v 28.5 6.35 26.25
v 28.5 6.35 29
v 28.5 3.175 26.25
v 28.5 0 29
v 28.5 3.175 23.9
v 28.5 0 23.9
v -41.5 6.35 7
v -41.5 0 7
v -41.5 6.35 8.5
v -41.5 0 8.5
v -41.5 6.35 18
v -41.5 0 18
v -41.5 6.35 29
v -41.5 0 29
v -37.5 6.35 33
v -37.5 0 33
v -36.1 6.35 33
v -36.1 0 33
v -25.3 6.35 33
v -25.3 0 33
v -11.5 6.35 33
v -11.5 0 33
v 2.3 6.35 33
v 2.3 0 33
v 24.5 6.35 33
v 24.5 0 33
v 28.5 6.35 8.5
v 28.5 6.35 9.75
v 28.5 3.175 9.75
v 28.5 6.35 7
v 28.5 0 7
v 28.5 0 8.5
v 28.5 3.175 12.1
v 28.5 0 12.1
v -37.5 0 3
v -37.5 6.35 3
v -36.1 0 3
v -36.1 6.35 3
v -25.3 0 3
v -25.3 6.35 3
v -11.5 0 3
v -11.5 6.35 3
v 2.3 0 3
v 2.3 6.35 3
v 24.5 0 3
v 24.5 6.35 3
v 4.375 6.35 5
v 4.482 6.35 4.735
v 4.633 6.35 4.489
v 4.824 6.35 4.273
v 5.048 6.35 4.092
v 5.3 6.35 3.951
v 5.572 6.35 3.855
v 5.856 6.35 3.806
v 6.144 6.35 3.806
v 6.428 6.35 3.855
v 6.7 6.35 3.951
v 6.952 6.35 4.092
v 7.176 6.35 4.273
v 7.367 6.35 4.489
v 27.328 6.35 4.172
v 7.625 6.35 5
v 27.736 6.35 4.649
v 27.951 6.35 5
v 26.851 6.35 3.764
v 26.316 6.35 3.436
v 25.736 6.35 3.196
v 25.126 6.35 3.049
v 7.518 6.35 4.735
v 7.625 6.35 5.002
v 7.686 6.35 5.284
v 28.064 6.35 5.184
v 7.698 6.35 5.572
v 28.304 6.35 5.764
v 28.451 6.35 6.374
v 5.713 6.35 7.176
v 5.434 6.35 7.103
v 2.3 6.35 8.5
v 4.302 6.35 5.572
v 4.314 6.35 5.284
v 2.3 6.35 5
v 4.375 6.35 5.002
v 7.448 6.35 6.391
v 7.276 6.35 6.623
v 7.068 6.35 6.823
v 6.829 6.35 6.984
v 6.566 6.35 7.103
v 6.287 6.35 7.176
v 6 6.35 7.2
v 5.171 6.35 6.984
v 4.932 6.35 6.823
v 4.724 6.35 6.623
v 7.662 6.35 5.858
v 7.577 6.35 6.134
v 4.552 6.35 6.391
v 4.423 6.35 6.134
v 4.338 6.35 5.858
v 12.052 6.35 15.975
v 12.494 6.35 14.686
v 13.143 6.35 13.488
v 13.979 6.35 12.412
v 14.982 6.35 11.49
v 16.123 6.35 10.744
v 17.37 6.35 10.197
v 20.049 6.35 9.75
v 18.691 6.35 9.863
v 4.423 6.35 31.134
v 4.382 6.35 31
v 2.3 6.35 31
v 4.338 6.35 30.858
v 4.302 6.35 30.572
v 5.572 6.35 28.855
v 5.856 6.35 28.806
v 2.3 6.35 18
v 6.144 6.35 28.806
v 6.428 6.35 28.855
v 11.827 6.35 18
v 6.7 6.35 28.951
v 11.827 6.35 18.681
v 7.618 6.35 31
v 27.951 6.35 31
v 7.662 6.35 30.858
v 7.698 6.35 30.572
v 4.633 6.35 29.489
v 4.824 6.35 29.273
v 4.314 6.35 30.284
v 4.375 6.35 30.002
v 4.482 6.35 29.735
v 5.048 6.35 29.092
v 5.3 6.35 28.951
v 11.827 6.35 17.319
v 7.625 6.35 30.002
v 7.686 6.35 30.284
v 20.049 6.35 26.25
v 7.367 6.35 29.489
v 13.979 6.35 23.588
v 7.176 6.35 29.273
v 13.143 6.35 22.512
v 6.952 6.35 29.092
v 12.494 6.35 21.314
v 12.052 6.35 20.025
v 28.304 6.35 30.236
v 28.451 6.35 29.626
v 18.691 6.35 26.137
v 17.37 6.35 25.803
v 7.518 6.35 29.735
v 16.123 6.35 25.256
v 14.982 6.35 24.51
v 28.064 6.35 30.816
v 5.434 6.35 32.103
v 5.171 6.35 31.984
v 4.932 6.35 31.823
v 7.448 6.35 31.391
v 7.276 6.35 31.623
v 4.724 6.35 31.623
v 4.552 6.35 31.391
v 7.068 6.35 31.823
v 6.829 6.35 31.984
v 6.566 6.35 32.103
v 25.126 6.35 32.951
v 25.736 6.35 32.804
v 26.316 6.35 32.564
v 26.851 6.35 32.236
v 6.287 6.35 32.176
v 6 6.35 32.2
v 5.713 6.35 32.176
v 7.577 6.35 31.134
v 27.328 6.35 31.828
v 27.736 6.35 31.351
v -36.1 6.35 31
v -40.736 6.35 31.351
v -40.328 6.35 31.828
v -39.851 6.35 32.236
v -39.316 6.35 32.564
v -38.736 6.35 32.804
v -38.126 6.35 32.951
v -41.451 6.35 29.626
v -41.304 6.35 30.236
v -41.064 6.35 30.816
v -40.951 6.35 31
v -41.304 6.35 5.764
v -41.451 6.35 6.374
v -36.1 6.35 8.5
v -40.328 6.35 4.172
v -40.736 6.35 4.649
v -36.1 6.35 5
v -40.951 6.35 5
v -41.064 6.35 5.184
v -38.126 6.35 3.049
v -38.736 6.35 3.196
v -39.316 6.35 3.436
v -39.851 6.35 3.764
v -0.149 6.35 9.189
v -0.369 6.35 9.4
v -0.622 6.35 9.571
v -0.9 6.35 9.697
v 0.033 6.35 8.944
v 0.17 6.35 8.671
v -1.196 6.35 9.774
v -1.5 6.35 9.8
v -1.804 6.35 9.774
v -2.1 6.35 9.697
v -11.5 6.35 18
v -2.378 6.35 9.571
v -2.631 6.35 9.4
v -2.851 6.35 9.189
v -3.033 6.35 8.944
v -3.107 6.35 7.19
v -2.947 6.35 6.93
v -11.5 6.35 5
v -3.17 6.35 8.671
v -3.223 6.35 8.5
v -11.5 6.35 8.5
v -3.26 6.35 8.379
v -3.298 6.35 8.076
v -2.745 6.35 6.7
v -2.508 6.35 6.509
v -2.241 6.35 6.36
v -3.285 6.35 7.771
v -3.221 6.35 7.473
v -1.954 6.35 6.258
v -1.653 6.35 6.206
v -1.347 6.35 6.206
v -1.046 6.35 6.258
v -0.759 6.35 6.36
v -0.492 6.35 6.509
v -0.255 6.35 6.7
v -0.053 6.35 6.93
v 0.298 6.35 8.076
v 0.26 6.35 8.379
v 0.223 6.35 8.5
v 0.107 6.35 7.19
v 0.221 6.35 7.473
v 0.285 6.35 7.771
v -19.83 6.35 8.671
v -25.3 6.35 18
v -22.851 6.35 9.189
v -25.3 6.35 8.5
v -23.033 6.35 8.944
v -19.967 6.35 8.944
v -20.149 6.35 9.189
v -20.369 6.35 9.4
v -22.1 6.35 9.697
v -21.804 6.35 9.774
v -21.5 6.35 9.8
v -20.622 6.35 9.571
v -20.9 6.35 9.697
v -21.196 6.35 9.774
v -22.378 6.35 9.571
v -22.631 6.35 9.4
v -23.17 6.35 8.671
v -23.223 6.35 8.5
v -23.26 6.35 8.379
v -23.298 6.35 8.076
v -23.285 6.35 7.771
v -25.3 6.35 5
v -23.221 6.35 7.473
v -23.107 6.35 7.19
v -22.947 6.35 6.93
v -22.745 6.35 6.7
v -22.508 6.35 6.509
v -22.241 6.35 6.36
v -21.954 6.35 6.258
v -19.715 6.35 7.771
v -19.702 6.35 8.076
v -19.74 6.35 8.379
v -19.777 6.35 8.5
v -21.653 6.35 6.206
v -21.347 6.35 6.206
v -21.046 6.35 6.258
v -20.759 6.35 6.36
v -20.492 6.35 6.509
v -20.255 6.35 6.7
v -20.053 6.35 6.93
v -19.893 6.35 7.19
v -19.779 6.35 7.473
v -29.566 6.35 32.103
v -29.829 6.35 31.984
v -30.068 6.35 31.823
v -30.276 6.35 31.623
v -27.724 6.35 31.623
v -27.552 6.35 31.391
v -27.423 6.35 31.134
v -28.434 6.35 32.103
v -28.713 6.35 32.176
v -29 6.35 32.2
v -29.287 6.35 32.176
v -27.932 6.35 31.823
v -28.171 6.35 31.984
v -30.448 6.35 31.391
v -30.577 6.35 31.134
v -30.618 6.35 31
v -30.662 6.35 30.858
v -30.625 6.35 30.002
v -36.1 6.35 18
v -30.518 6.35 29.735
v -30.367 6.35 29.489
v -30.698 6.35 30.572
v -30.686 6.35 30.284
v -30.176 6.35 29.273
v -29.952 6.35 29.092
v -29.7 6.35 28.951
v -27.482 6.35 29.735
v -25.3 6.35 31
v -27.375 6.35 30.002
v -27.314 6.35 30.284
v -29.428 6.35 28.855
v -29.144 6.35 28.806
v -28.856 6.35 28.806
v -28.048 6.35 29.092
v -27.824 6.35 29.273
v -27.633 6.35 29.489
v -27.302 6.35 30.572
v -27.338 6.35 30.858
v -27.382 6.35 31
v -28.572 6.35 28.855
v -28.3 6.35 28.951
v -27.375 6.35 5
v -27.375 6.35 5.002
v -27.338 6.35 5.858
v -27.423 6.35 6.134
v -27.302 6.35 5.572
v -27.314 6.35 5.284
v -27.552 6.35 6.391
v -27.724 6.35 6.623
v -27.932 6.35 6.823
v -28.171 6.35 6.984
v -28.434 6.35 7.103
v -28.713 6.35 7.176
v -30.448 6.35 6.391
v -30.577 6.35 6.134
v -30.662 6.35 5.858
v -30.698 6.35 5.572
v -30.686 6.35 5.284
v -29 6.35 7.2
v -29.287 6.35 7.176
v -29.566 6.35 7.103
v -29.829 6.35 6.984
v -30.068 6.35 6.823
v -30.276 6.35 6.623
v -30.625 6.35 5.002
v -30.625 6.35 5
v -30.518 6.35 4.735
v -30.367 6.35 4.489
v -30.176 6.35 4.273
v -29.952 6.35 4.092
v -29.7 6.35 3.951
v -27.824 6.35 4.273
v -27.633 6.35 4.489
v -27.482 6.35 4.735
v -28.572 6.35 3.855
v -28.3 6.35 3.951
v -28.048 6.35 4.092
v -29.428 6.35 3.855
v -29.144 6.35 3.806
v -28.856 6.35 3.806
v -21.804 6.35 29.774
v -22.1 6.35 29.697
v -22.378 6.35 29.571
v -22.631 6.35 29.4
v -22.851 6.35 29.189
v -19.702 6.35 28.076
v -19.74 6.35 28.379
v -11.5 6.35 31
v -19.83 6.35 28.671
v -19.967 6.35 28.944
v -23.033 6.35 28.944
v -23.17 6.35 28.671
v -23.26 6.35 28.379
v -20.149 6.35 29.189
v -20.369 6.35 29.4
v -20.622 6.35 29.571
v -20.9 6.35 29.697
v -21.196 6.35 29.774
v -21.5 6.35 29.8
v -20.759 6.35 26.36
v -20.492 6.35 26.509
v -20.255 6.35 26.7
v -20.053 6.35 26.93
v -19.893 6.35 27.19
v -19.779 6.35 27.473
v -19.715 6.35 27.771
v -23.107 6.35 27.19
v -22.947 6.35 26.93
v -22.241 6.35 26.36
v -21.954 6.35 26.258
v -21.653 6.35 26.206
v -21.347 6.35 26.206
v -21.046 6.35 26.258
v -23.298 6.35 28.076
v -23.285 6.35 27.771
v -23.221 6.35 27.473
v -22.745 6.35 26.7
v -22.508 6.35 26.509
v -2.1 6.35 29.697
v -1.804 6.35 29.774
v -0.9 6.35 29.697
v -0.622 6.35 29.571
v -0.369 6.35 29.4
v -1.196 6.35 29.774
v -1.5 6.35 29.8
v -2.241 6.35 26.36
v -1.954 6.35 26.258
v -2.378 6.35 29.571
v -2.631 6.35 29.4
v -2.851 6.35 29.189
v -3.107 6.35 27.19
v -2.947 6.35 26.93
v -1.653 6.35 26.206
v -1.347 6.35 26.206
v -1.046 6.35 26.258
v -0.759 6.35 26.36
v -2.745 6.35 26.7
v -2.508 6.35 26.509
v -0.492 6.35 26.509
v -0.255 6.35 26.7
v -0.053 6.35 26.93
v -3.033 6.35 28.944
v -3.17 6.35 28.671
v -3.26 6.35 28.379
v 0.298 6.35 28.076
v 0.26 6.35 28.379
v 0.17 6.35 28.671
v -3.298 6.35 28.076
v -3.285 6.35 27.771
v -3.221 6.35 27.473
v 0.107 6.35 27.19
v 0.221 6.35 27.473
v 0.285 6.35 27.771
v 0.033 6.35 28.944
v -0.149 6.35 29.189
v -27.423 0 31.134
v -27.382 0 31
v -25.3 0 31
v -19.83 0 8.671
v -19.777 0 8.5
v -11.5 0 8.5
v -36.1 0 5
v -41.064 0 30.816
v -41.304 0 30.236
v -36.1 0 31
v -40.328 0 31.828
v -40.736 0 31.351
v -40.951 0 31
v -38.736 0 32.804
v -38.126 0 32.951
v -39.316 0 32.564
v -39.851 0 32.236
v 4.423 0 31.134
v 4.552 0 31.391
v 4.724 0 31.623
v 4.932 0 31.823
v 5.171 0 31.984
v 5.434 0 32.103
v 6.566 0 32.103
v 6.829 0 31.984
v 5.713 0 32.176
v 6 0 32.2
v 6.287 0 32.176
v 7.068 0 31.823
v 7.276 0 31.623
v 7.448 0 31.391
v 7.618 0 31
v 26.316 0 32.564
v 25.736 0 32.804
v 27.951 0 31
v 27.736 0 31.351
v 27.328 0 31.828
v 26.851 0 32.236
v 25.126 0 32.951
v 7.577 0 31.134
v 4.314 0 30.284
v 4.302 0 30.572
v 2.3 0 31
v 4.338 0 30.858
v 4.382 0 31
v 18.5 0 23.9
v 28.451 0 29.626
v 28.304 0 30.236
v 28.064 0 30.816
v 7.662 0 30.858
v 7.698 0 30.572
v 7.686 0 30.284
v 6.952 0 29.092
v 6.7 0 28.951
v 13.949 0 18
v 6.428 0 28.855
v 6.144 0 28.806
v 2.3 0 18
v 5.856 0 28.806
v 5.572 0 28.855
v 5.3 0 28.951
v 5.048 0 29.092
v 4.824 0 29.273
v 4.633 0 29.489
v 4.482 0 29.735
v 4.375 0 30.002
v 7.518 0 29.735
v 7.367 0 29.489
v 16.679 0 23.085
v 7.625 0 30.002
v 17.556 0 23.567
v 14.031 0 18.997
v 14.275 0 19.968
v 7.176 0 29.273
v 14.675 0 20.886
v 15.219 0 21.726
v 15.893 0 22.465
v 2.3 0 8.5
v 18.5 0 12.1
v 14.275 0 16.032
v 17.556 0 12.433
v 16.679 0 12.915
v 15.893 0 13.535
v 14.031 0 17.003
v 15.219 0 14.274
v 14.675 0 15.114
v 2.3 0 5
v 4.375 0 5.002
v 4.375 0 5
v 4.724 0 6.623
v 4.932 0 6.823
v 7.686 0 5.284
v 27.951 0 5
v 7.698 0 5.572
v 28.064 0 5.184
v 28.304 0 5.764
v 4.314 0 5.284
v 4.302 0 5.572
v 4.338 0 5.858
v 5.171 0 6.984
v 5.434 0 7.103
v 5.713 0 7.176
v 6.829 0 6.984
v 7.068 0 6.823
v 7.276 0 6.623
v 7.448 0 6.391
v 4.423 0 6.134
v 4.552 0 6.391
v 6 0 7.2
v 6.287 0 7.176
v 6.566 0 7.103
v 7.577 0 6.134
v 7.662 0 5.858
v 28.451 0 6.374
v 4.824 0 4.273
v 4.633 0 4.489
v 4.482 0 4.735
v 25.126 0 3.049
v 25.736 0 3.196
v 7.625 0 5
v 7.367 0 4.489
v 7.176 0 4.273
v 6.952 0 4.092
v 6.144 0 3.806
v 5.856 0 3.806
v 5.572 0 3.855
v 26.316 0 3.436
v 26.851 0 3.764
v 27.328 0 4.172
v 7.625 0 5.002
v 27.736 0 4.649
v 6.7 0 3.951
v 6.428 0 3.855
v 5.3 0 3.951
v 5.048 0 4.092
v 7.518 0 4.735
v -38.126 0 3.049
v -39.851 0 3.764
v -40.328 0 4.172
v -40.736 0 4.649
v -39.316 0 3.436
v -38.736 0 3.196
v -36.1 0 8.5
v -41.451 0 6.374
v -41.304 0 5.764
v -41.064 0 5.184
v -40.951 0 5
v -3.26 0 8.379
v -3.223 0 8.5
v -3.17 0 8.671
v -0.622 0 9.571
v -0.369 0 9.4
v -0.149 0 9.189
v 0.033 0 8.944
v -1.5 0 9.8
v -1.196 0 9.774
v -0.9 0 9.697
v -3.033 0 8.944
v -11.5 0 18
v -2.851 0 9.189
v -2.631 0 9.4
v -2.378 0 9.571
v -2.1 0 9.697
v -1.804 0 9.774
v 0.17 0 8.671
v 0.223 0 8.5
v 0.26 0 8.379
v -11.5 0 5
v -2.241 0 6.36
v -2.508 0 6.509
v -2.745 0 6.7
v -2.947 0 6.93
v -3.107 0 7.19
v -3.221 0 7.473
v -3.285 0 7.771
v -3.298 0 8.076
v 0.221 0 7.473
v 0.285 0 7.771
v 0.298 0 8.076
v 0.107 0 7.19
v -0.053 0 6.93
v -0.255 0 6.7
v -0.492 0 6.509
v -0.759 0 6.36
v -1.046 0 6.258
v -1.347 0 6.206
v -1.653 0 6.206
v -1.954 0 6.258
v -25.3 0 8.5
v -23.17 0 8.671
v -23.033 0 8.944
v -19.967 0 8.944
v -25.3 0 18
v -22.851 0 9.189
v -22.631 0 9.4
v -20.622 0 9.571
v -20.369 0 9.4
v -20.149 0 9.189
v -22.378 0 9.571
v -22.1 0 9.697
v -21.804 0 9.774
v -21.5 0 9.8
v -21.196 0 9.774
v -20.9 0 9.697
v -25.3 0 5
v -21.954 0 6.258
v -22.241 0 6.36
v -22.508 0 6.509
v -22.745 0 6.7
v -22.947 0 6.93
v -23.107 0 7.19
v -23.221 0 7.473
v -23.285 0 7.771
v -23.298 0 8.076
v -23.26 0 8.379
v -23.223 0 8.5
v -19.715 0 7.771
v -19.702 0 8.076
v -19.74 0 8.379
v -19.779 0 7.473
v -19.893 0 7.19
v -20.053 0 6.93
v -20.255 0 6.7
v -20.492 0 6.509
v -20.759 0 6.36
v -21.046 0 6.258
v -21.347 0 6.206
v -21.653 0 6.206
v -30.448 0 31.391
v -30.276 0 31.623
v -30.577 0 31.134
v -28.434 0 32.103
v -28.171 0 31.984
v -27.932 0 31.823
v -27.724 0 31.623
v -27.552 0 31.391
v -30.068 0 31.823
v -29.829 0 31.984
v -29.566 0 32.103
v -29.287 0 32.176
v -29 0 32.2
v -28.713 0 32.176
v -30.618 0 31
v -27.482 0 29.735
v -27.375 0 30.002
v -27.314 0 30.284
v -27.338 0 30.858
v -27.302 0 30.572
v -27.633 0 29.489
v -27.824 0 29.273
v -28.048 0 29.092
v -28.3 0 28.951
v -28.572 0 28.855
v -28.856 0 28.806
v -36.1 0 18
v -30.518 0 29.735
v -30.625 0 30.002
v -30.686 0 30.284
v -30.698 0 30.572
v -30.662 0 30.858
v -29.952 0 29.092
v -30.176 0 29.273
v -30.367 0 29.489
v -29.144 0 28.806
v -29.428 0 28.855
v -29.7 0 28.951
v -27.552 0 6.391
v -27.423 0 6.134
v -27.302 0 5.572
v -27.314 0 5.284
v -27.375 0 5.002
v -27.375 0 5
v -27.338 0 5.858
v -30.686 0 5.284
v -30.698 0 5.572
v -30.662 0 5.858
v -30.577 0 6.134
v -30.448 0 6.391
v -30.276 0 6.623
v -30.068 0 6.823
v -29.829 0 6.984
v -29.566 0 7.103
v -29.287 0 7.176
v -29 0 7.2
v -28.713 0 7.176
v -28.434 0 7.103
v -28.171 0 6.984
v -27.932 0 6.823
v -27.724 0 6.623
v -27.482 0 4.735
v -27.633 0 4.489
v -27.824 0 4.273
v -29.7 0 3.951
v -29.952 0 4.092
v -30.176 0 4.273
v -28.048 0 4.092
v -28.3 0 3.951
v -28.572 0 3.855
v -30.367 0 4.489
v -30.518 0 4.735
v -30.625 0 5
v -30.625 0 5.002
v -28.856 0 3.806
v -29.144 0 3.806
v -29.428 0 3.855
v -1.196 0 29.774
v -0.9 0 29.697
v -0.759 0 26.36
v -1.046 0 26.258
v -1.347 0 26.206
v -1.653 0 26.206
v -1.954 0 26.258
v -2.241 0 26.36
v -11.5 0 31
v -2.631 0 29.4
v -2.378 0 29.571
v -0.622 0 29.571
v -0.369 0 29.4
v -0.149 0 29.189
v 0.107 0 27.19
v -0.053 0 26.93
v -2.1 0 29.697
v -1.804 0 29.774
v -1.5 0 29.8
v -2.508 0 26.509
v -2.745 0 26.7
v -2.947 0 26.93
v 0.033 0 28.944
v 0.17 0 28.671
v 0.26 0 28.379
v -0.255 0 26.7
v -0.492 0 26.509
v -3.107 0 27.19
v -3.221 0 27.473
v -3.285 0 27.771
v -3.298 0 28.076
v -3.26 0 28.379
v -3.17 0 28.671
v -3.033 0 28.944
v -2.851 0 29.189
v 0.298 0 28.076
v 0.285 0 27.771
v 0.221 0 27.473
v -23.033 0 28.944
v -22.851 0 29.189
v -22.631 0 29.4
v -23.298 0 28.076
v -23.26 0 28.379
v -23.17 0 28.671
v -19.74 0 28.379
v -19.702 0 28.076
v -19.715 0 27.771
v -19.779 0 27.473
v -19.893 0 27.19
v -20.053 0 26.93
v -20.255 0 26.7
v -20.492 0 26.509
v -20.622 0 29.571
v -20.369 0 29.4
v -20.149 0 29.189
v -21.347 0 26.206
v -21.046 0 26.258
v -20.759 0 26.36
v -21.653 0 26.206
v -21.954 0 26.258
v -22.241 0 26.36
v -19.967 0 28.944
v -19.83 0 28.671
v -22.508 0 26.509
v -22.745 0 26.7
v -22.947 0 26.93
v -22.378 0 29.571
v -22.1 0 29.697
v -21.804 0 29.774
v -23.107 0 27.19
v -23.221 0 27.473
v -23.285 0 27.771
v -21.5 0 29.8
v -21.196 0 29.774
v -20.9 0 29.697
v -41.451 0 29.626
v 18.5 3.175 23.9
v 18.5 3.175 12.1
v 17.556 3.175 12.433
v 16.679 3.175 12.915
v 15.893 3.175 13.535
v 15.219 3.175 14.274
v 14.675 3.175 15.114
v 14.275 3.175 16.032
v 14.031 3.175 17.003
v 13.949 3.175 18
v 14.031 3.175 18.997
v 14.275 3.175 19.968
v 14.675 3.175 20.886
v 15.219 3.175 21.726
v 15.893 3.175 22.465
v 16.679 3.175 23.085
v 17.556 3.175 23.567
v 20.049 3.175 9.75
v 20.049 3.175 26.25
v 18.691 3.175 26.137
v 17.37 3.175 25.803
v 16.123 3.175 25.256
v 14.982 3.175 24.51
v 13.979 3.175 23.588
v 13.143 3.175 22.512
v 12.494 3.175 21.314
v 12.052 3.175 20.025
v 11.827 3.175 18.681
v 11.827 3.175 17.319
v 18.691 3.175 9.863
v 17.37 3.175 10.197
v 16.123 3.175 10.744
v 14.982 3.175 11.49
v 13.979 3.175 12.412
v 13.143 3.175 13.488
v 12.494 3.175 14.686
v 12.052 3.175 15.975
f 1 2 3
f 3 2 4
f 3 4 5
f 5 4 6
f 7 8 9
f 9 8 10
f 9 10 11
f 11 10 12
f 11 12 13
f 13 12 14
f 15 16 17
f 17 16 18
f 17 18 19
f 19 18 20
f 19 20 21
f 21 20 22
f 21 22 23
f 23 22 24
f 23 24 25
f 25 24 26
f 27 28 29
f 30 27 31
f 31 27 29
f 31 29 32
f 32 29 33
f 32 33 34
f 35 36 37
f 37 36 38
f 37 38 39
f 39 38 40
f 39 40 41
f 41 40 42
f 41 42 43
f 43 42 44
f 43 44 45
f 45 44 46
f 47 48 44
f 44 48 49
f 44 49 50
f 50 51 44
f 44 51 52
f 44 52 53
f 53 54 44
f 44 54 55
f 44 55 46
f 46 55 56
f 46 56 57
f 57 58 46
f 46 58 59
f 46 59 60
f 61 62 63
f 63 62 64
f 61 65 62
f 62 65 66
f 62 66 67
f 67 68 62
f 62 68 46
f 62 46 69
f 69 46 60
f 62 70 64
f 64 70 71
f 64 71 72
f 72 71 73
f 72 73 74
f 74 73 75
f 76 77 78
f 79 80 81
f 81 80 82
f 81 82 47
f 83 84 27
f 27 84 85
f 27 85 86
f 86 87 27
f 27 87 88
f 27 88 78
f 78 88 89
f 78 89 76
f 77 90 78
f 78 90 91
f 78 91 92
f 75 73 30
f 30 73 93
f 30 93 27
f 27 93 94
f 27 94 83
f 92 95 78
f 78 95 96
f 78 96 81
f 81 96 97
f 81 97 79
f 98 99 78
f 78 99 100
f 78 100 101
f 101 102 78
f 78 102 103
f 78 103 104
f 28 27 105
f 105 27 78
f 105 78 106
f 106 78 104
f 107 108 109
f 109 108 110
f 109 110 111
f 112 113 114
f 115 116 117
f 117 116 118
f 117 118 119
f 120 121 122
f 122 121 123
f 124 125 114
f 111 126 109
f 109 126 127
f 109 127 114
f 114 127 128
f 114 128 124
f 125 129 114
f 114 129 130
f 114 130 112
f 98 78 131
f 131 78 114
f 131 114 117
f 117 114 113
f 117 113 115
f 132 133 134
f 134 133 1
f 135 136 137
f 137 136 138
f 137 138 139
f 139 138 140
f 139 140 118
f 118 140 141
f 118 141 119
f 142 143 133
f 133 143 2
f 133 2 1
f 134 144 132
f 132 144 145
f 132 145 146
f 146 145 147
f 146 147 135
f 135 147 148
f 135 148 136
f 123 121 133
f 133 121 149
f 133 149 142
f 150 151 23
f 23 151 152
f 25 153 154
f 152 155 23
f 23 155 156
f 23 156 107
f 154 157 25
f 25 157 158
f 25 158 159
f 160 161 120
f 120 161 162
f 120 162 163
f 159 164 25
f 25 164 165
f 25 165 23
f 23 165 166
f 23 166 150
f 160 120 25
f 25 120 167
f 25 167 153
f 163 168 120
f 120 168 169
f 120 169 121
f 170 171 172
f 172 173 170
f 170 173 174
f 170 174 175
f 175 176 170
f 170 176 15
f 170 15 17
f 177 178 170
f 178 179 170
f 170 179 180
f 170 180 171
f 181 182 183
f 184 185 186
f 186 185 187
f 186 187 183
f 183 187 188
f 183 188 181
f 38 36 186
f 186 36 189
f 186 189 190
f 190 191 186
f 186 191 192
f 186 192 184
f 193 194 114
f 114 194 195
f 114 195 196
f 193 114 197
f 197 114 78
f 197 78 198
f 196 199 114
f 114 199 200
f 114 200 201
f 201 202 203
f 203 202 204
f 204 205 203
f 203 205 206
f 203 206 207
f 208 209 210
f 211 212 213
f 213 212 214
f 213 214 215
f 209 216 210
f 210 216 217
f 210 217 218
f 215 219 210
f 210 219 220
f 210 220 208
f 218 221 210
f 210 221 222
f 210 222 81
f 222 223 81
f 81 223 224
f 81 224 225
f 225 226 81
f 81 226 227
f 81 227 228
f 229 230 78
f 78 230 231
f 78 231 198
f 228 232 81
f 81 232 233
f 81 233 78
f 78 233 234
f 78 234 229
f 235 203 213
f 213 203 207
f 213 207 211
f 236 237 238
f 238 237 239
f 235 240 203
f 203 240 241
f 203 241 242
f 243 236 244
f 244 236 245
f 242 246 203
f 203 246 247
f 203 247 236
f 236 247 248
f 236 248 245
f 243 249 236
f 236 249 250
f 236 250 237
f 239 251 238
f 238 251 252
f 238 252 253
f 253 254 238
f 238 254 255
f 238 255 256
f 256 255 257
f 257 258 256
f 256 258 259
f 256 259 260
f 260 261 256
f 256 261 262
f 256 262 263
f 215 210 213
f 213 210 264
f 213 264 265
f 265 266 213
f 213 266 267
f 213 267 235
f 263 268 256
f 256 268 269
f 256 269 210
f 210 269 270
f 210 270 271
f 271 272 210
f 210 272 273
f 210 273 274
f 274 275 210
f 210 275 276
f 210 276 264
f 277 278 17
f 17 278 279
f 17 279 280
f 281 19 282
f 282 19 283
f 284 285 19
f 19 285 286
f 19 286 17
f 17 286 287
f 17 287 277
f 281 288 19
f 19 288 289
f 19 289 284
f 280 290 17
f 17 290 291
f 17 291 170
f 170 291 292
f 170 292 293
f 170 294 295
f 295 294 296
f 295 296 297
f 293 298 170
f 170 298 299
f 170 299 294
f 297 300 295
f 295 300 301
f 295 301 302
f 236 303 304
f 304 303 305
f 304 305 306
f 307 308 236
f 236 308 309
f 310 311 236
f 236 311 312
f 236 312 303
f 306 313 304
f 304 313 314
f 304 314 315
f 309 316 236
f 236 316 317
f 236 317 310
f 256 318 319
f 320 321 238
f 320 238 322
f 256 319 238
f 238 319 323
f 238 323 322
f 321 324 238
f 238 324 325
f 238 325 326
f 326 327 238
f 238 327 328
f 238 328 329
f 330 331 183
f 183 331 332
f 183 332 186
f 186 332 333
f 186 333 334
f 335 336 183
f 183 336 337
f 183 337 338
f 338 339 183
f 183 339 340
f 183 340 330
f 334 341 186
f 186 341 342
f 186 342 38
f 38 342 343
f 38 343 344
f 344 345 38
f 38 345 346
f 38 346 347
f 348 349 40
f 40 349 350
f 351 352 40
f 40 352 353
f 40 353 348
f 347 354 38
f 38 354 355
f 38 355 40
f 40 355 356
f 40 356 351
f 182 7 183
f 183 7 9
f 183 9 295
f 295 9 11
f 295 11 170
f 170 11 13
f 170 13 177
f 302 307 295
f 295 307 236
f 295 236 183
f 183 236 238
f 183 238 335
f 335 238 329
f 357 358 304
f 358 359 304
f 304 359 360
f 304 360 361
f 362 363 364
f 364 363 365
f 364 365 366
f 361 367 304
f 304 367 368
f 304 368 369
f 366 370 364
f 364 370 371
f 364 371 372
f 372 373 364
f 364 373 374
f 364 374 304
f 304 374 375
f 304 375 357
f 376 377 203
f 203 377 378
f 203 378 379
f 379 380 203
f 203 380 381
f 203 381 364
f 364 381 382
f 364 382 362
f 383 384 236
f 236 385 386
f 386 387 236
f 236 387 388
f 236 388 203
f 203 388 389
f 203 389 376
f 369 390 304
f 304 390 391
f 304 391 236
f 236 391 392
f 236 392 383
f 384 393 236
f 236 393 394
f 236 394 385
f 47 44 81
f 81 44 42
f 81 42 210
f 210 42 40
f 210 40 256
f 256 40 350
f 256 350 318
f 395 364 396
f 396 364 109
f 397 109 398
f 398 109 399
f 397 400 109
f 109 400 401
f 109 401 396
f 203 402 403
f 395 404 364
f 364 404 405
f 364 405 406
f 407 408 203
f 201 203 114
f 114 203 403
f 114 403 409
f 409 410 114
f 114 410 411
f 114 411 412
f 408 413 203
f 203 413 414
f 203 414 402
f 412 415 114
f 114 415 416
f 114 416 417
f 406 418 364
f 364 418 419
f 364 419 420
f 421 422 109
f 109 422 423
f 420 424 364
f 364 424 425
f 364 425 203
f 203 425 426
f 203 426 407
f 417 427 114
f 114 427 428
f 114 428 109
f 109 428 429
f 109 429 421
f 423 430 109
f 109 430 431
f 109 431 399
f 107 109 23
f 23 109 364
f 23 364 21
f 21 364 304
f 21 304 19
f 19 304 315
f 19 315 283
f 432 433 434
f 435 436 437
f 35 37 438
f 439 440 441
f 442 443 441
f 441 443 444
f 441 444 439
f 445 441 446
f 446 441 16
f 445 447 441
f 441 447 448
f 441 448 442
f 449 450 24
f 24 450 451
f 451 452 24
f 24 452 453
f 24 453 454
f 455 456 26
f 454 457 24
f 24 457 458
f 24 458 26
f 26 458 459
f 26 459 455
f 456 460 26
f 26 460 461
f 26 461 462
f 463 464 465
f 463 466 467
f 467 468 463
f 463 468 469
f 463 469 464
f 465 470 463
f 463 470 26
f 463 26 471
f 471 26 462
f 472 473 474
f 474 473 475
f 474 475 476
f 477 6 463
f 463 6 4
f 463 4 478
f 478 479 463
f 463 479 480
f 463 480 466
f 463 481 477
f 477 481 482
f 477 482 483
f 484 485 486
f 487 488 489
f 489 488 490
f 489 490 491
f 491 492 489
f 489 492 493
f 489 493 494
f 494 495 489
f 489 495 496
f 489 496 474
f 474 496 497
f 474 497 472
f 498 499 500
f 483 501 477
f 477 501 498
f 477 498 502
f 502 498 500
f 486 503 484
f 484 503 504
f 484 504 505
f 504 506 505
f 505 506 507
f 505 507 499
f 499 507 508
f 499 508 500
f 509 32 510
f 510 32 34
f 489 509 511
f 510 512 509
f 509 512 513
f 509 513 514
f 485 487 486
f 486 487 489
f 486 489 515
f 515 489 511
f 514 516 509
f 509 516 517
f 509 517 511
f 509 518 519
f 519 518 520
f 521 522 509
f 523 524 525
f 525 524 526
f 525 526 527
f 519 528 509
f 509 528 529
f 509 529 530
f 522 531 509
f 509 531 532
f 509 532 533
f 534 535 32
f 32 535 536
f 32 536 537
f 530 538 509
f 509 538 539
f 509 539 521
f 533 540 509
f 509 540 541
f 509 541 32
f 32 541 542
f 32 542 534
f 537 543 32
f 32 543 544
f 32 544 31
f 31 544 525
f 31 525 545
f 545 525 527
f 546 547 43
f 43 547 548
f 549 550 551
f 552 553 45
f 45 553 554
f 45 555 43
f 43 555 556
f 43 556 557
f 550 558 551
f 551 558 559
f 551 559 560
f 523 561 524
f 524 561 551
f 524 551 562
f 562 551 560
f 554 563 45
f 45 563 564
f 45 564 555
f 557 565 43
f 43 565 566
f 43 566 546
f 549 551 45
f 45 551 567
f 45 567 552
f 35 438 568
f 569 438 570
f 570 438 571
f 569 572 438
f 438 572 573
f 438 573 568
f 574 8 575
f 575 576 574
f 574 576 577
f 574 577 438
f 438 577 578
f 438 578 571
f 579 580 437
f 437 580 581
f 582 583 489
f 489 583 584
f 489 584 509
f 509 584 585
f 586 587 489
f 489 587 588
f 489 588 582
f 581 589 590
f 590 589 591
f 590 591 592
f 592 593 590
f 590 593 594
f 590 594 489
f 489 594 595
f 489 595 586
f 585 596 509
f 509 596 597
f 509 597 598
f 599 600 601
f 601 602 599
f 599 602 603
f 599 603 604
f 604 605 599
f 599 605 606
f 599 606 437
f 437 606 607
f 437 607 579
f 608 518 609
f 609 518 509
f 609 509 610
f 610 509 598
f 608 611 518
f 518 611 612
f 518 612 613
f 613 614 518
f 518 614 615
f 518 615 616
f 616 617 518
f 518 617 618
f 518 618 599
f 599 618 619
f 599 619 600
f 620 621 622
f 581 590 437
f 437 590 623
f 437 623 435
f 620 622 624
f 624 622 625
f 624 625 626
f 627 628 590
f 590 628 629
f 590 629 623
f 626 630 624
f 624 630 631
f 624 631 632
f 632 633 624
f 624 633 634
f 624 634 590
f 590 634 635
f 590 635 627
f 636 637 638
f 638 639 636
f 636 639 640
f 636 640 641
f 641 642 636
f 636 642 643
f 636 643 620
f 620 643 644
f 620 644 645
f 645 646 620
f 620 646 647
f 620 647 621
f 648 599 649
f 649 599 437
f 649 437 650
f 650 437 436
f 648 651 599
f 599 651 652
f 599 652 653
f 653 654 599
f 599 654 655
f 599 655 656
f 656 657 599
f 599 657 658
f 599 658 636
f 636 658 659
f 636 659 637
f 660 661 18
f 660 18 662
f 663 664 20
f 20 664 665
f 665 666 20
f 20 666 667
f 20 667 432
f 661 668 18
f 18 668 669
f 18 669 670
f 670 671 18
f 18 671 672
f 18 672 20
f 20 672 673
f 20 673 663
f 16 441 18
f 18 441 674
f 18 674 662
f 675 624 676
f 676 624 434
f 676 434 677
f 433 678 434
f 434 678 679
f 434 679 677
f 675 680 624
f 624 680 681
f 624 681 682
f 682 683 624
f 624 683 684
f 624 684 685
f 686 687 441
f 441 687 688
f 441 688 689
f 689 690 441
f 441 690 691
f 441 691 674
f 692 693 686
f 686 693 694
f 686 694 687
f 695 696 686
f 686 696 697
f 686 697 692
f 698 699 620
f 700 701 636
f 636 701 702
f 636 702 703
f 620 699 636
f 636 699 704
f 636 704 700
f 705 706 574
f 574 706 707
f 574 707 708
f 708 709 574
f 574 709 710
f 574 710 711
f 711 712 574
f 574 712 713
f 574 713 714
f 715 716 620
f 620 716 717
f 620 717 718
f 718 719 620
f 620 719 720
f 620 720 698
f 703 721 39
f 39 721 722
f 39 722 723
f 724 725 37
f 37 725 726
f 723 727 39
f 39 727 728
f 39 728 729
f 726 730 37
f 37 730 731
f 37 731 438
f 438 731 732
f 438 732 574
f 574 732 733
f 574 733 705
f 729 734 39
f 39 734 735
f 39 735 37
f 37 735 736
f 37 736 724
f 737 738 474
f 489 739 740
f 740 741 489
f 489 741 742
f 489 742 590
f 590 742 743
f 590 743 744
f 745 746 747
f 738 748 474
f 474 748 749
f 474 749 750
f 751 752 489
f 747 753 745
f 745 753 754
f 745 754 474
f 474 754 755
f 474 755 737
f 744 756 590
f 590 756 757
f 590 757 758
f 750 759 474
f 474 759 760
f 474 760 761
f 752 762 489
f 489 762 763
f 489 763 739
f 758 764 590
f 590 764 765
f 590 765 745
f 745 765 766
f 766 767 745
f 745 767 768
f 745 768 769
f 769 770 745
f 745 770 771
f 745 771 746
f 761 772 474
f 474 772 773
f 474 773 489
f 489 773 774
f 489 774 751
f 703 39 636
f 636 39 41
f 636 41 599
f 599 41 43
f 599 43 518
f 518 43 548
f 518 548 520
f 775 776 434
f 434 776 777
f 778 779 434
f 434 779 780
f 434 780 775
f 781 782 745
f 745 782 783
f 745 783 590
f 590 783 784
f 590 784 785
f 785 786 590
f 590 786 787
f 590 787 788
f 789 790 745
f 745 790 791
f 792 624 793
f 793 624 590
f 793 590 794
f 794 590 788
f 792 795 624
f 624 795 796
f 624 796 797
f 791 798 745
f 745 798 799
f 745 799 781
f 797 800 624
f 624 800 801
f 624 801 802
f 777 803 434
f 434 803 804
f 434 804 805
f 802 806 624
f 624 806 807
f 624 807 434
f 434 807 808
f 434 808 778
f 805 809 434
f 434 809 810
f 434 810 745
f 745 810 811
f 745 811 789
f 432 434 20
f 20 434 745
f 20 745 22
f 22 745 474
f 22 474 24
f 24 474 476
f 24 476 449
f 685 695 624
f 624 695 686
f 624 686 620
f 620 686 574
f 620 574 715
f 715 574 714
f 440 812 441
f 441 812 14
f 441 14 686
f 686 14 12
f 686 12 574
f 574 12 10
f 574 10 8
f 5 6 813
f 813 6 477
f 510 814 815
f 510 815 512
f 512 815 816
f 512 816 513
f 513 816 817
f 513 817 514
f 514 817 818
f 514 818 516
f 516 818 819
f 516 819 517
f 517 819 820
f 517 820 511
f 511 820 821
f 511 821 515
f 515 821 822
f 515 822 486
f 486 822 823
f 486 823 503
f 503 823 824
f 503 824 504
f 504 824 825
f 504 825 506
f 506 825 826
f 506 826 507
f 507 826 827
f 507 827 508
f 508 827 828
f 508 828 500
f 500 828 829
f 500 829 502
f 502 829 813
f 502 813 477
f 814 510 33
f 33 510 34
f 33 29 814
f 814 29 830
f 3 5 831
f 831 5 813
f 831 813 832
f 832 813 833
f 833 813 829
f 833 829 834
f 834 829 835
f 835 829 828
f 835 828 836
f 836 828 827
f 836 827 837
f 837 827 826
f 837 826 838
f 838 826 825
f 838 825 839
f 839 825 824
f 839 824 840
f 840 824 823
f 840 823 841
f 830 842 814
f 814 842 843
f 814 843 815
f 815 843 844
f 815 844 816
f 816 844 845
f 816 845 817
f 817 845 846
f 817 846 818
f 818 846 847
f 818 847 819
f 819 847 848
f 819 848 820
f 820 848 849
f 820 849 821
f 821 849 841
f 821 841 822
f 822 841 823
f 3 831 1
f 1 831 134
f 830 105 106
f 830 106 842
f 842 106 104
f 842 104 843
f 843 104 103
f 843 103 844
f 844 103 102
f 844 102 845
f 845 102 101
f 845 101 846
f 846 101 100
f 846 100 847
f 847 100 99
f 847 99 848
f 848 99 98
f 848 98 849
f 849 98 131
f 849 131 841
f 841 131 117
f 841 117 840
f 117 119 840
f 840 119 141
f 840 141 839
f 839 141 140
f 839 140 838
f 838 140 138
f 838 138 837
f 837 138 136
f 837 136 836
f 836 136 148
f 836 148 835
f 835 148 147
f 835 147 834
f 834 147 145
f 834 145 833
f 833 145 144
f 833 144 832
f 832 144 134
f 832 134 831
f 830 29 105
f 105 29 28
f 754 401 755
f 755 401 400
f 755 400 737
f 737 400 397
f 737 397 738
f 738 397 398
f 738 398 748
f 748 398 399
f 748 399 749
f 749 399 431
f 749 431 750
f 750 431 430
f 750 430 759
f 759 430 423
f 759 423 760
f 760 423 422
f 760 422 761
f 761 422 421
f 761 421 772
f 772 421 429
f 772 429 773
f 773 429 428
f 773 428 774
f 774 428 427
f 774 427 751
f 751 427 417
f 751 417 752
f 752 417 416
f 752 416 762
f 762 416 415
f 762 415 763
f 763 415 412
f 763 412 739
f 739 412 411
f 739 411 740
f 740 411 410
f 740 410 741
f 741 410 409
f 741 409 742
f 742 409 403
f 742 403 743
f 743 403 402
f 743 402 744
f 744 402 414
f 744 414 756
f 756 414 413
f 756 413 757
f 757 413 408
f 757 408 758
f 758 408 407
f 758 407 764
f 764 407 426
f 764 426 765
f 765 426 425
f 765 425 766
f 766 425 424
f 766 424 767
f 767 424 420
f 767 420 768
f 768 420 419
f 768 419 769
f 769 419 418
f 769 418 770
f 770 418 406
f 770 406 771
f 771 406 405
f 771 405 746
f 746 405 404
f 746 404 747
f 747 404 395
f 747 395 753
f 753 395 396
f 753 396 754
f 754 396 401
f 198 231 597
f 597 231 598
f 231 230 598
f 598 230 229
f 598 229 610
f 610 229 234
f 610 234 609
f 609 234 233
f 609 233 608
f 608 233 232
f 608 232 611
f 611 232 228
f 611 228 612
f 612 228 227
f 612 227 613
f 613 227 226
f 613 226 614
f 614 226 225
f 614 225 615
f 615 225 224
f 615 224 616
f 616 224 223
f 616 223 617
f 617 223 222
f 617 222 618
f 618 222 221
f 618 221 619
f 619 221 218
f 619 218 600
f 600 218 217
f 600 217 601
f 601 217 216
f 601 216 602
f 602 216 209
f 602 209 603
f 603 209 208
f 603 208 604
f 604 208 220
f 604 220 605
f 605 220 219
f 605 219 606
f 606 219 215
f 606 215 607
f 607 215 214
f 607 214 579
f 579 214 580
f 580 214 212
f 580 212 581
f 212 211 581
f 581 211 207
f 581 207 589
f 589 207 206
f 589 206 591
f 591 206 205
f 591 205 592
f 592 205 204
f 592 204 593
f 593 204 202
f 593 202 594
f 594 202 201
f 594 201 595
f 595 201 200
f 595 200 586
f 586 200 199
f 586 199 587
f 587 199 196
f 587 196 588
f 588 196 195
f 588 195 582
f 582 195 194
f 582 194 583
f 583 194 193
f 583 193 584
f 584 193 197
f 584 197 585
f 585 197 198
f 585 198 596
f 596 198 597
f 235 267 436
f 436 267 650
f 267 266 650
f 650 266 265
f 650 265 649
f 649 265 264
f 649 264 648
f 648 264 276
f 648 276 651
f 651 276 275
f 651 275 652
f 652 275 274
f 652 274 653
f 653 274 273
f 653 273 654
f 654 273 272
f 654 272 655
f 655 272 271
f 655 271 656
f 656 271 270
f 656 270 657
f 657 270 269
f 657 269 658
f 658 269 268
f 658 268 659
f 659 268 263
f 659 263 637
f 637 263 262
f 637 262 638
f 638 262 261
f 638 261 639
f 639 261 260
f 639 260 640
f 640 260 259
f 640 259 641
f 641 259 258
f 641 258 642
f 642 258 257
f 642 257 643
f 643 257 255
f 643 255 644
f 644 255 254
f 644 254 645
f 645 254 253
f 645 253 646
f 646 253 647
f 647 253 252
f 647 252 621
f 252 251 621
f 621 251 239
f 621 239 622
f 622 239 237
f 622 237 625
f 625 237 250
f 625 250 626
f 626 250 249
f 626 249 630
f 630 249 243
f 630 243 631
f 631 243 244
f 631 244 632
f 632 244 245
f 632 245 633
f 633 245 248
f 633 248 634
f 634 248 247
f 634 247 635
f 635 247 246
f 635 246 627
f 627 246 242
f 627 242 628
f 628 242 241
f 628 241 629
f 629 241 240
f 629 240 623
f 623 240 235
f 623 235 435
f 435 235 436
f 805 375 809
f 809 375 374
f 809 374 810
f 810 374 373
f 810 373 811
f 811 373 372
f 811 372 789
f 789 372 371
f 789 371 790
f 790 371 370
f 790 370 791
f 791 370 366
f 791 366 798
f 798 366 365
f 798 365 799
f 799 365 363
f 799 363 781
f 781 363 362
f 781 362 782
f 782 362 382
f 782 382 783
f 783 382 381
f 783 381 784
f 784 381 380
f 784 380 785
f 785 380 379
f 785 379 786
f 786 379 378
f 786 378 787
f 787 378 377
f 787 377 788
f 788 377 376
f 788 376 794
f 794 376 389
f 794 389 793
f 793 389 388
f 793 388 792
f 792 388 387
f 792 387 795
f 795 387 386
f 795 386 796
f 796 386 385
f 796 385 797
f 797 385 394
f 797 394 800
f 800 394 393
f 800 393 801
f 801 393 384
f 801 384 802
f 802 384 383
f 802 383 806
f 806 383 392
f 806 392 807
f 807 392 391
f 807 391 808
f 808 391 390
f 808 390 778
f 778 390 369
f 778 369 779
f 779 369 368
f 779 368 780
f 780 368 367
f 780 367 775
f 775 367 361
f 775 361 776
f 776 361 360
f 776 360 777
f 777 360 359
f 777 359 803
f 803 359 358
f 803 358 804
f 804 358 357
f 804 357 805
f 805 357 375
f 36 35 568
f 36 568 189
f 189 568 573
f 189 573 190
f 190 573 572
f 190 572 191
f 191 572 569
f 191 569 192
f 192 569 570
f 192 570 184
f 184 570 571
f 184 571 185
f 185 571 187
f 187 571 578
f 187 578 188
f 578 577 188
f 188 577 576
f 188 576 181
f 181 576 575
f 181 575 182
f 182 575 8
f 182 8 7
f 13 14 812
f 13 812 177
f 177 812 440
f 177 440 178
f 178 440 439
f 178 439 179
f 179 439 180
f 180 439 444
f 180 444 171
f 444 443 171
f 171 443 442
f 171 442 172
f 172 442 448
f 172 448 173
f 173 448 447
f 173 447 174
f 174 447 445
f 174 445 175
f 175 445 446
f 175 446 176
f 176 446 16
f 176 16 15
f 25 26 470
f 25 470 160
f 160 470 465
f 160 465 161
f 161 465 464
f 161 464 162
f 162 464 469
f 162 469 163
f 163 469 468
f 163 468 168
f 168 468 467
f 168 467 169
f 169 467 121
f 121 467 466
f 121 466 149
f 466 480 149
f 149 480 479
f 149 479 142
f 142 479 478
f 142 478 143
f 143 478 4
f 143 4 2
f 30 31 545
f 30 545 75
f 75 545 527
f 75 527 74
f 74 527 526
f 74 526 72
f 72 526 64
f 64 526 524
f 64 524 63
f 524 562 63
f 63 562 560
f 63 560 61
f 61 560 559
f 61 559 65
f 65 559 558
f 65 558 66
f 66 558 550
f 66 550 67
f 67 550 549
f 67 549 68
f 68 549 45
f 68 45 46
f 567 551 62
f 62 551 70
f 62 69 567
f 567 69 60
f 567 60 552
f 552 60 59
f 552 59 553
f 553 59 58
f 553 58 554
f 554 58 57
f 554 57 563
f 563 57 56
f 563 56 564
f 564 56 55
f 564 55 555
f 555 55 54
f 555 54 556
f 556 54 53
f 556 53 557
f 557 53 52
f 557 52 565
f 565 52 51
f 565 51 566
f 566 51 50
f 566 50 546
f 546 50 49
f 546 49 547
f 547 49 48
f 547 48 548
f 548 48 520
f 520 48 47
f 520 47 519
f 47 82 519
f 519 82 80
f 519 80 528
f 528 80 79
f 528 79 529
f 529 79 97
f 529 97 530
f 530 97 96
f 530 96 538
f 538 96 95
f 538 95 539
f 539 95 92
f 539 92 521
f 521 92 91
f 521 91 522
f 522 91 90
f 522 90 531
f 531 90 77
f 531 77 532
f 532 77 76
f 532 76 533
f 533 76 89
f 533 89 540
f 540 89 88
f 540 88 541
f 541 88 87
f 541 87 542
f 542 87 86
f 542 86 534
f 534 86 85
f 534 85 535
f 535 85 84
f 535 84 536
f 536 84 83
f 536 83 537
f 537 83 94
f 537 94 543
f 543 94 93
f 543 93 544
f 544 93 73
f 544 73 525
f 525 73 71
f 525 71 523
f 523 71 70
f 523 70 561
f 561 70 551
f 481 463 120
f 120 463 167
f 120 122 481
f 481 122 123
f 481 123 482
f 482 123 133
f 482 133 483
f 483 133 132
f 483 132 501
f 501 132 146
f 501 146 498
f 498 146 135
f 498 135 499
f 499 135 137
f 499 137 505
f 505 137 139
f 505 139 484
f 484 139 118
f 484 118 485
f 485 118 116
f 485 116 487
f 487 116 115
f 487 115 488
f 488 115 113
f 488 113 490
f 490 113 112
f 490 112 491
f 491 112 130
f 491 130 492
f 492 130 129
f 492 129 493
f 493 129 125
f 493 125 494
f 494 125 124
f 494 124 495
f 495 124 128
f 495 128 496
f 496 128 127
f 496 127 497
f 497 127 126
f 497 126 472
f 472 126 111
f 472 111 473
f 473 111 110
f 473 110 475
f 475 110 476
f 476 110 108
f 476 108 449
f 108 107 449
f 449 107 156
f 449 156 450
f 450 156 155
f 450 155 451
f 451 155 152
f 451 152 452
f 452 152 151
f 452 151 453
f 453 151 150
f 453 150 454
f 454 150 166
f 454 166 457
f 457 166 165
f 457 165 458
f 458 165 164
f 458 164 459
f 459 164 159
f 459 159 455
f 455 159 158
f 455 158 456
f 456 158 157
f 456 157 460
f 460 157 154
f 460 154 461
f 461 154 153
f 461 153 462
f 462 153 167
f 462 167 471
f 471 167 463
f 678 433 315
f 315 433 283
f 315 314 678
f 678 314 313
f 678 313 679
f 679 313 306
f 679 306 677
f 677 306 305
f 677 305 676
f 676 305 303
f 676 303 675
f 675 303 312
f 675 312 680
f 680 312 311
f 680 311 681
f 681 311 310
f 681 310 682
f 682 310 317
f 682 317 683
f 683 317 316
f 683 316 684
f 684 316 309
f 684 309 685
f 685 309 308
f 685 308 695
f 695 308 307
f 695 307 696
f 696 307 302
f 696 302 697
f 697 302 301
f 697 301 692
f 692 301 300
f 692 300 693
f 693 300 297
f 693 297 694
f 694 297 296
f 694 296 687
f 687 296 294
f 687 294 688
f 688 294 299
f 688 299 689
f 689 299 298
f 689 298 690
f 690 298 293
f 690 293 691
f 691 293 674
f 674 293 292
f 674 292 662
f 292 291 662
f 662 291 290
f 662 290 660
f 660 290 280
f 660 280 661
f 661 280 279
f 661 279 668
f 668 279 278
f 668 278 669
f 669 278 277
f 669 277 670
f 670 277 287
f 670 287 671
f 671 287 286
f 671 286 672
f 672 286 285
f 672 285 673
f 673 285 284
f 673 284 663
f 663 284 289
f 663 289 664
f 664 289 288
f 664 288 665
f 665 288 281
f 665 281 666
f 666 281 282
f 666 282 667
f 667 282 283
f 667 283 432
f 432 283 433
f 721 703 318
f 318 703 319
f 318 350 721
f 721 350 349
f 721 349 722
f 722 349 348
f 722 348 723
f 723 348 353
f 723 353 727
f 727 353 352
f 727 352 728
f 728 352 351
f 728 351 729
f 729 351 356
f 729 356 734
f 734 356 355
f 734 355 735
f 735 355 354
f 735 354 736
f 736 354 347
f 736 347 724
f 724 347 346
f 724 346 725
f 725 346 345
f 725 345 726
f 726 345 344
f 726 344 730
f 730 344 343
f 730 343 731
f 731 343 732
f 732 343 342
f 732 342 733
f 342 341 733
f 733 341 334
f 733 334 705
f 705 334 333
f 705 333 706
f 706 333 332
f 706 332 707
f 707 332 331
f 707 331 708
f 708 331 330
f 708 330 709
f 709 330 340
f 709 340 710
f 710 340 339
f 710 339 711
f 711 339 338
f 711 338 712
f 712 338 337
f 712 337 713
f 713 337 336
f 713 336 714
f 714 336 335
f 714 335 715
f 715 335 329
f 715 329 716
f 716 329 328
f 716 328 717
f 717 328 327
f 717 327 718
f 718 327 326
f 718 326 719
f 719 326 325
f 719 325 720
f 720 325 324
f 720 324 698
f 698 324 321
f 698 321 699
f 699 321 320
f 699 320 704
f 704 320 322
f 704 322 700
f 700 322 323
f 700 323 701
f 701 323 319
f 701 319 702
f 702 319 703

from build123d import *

# Parameters (mm, degrees)
SKETCH1_W            = 70
SKETCH1_H            = 30
BOSS_EXTRUDE1_DEPTH  = 6.35
CUT_EXTRUDE1_DEPTH   = 54.400117041
CUT_EXTRUDE2_DEPTH   = 3.175
M3_CLEARANCE_HOLE2_D = 3.6
FILLET1_R            = 4
M3_CLEARANCE_HOLE3_D = 3.4


with BuildPart() as part:
    # Sketch1 → Boss-Extrude1 (new body)
    with BuildSketch(Plane.XZ):
        with Locations((-6.5, 18)):
            Rectangle(SKETCH1_W, SKETCH1_H)
    extrude(amount=-BOSS_EXTRUDE1_DEPTH)

    # Sketch9 → Cut-Extrude1 (cut, through all)
    with BuildSketch(Plane(origin=(0, 6.35, 0), x_dir=(1, 0, 0), z_dir=(0, 1, 0))):
        with BuildLine():
            Line((28.5, -12.1), (18.5, -12.1))
            ThreePointArc((18.5, -12.1), (13.949193338, -18), (18.5, -23.9))
            Line((18.5, -23.9), (28.5, -23.9))
            Line((28.5, -23.9), (28.5, -12.1))
        make_face()
    extrude(amount=-CUT_EXTRUDE1_DEPTH, mode=Mode.SUBTRACT)

    # Sketch10 → Cut-Extrude2 (cut)
    with BuildSketch(Plane(origin=(0, 6.35, 0), x_dir=(1, 0, 0), z_dir=(0, 1, 0))):
        with BuildLine():
            Line((28.5, -26.25), (20.049193338, -26.25))
            ThreePointArc((20.049193338, -26.25), (11.799193338, -18), (20.049193338, -9.75))
            Line((20.049193338, -9.75), (28.5, -9.75))
            Line((28.5, -9.75), (28.5, -26.25))
        make_face()
    extrude(amount=-CUT_EXTRUDE2_DEPTH, mode=Mode.SUBTRACT)

    # M3 Clearance Hole2 (through all)
    with Locations(Plane(origin=(-21.5, 6.35, 28), x_dir=(0, 0, 1), z_dir=(0, 1, 0))):
        with Locations((0, 0), (-20, 0), (-20, 20), (0, 20)):
            Hole(M3_CLEARANCE_HOLE2_D / 2)

    # Fillet1
    fillet1_edges = [part.edges().sort_by_distance(p)[0] for p in [
        (-41.5, 3.175, 33),
        (28.5, 3.175, 33),
        (28.5, 3.175, 3),
        (-41.5, 3.175, 3),
    ]]
    fillet(fillet1_edges, radius=FILLET1_R)

    # M3 Clearance Hole3 (through all)
    with Locations(Plane(origin=(-29, 6.35, 5.5), x_dir=(0, 0, 1), z_dir=(0, 1, 0))):
        with Locations((0, 0), (25, 0), (25, 35), (0, 35)):
            Hole(M3_CLEARANCE_HOLE3_D / 2)


solid = part.part
